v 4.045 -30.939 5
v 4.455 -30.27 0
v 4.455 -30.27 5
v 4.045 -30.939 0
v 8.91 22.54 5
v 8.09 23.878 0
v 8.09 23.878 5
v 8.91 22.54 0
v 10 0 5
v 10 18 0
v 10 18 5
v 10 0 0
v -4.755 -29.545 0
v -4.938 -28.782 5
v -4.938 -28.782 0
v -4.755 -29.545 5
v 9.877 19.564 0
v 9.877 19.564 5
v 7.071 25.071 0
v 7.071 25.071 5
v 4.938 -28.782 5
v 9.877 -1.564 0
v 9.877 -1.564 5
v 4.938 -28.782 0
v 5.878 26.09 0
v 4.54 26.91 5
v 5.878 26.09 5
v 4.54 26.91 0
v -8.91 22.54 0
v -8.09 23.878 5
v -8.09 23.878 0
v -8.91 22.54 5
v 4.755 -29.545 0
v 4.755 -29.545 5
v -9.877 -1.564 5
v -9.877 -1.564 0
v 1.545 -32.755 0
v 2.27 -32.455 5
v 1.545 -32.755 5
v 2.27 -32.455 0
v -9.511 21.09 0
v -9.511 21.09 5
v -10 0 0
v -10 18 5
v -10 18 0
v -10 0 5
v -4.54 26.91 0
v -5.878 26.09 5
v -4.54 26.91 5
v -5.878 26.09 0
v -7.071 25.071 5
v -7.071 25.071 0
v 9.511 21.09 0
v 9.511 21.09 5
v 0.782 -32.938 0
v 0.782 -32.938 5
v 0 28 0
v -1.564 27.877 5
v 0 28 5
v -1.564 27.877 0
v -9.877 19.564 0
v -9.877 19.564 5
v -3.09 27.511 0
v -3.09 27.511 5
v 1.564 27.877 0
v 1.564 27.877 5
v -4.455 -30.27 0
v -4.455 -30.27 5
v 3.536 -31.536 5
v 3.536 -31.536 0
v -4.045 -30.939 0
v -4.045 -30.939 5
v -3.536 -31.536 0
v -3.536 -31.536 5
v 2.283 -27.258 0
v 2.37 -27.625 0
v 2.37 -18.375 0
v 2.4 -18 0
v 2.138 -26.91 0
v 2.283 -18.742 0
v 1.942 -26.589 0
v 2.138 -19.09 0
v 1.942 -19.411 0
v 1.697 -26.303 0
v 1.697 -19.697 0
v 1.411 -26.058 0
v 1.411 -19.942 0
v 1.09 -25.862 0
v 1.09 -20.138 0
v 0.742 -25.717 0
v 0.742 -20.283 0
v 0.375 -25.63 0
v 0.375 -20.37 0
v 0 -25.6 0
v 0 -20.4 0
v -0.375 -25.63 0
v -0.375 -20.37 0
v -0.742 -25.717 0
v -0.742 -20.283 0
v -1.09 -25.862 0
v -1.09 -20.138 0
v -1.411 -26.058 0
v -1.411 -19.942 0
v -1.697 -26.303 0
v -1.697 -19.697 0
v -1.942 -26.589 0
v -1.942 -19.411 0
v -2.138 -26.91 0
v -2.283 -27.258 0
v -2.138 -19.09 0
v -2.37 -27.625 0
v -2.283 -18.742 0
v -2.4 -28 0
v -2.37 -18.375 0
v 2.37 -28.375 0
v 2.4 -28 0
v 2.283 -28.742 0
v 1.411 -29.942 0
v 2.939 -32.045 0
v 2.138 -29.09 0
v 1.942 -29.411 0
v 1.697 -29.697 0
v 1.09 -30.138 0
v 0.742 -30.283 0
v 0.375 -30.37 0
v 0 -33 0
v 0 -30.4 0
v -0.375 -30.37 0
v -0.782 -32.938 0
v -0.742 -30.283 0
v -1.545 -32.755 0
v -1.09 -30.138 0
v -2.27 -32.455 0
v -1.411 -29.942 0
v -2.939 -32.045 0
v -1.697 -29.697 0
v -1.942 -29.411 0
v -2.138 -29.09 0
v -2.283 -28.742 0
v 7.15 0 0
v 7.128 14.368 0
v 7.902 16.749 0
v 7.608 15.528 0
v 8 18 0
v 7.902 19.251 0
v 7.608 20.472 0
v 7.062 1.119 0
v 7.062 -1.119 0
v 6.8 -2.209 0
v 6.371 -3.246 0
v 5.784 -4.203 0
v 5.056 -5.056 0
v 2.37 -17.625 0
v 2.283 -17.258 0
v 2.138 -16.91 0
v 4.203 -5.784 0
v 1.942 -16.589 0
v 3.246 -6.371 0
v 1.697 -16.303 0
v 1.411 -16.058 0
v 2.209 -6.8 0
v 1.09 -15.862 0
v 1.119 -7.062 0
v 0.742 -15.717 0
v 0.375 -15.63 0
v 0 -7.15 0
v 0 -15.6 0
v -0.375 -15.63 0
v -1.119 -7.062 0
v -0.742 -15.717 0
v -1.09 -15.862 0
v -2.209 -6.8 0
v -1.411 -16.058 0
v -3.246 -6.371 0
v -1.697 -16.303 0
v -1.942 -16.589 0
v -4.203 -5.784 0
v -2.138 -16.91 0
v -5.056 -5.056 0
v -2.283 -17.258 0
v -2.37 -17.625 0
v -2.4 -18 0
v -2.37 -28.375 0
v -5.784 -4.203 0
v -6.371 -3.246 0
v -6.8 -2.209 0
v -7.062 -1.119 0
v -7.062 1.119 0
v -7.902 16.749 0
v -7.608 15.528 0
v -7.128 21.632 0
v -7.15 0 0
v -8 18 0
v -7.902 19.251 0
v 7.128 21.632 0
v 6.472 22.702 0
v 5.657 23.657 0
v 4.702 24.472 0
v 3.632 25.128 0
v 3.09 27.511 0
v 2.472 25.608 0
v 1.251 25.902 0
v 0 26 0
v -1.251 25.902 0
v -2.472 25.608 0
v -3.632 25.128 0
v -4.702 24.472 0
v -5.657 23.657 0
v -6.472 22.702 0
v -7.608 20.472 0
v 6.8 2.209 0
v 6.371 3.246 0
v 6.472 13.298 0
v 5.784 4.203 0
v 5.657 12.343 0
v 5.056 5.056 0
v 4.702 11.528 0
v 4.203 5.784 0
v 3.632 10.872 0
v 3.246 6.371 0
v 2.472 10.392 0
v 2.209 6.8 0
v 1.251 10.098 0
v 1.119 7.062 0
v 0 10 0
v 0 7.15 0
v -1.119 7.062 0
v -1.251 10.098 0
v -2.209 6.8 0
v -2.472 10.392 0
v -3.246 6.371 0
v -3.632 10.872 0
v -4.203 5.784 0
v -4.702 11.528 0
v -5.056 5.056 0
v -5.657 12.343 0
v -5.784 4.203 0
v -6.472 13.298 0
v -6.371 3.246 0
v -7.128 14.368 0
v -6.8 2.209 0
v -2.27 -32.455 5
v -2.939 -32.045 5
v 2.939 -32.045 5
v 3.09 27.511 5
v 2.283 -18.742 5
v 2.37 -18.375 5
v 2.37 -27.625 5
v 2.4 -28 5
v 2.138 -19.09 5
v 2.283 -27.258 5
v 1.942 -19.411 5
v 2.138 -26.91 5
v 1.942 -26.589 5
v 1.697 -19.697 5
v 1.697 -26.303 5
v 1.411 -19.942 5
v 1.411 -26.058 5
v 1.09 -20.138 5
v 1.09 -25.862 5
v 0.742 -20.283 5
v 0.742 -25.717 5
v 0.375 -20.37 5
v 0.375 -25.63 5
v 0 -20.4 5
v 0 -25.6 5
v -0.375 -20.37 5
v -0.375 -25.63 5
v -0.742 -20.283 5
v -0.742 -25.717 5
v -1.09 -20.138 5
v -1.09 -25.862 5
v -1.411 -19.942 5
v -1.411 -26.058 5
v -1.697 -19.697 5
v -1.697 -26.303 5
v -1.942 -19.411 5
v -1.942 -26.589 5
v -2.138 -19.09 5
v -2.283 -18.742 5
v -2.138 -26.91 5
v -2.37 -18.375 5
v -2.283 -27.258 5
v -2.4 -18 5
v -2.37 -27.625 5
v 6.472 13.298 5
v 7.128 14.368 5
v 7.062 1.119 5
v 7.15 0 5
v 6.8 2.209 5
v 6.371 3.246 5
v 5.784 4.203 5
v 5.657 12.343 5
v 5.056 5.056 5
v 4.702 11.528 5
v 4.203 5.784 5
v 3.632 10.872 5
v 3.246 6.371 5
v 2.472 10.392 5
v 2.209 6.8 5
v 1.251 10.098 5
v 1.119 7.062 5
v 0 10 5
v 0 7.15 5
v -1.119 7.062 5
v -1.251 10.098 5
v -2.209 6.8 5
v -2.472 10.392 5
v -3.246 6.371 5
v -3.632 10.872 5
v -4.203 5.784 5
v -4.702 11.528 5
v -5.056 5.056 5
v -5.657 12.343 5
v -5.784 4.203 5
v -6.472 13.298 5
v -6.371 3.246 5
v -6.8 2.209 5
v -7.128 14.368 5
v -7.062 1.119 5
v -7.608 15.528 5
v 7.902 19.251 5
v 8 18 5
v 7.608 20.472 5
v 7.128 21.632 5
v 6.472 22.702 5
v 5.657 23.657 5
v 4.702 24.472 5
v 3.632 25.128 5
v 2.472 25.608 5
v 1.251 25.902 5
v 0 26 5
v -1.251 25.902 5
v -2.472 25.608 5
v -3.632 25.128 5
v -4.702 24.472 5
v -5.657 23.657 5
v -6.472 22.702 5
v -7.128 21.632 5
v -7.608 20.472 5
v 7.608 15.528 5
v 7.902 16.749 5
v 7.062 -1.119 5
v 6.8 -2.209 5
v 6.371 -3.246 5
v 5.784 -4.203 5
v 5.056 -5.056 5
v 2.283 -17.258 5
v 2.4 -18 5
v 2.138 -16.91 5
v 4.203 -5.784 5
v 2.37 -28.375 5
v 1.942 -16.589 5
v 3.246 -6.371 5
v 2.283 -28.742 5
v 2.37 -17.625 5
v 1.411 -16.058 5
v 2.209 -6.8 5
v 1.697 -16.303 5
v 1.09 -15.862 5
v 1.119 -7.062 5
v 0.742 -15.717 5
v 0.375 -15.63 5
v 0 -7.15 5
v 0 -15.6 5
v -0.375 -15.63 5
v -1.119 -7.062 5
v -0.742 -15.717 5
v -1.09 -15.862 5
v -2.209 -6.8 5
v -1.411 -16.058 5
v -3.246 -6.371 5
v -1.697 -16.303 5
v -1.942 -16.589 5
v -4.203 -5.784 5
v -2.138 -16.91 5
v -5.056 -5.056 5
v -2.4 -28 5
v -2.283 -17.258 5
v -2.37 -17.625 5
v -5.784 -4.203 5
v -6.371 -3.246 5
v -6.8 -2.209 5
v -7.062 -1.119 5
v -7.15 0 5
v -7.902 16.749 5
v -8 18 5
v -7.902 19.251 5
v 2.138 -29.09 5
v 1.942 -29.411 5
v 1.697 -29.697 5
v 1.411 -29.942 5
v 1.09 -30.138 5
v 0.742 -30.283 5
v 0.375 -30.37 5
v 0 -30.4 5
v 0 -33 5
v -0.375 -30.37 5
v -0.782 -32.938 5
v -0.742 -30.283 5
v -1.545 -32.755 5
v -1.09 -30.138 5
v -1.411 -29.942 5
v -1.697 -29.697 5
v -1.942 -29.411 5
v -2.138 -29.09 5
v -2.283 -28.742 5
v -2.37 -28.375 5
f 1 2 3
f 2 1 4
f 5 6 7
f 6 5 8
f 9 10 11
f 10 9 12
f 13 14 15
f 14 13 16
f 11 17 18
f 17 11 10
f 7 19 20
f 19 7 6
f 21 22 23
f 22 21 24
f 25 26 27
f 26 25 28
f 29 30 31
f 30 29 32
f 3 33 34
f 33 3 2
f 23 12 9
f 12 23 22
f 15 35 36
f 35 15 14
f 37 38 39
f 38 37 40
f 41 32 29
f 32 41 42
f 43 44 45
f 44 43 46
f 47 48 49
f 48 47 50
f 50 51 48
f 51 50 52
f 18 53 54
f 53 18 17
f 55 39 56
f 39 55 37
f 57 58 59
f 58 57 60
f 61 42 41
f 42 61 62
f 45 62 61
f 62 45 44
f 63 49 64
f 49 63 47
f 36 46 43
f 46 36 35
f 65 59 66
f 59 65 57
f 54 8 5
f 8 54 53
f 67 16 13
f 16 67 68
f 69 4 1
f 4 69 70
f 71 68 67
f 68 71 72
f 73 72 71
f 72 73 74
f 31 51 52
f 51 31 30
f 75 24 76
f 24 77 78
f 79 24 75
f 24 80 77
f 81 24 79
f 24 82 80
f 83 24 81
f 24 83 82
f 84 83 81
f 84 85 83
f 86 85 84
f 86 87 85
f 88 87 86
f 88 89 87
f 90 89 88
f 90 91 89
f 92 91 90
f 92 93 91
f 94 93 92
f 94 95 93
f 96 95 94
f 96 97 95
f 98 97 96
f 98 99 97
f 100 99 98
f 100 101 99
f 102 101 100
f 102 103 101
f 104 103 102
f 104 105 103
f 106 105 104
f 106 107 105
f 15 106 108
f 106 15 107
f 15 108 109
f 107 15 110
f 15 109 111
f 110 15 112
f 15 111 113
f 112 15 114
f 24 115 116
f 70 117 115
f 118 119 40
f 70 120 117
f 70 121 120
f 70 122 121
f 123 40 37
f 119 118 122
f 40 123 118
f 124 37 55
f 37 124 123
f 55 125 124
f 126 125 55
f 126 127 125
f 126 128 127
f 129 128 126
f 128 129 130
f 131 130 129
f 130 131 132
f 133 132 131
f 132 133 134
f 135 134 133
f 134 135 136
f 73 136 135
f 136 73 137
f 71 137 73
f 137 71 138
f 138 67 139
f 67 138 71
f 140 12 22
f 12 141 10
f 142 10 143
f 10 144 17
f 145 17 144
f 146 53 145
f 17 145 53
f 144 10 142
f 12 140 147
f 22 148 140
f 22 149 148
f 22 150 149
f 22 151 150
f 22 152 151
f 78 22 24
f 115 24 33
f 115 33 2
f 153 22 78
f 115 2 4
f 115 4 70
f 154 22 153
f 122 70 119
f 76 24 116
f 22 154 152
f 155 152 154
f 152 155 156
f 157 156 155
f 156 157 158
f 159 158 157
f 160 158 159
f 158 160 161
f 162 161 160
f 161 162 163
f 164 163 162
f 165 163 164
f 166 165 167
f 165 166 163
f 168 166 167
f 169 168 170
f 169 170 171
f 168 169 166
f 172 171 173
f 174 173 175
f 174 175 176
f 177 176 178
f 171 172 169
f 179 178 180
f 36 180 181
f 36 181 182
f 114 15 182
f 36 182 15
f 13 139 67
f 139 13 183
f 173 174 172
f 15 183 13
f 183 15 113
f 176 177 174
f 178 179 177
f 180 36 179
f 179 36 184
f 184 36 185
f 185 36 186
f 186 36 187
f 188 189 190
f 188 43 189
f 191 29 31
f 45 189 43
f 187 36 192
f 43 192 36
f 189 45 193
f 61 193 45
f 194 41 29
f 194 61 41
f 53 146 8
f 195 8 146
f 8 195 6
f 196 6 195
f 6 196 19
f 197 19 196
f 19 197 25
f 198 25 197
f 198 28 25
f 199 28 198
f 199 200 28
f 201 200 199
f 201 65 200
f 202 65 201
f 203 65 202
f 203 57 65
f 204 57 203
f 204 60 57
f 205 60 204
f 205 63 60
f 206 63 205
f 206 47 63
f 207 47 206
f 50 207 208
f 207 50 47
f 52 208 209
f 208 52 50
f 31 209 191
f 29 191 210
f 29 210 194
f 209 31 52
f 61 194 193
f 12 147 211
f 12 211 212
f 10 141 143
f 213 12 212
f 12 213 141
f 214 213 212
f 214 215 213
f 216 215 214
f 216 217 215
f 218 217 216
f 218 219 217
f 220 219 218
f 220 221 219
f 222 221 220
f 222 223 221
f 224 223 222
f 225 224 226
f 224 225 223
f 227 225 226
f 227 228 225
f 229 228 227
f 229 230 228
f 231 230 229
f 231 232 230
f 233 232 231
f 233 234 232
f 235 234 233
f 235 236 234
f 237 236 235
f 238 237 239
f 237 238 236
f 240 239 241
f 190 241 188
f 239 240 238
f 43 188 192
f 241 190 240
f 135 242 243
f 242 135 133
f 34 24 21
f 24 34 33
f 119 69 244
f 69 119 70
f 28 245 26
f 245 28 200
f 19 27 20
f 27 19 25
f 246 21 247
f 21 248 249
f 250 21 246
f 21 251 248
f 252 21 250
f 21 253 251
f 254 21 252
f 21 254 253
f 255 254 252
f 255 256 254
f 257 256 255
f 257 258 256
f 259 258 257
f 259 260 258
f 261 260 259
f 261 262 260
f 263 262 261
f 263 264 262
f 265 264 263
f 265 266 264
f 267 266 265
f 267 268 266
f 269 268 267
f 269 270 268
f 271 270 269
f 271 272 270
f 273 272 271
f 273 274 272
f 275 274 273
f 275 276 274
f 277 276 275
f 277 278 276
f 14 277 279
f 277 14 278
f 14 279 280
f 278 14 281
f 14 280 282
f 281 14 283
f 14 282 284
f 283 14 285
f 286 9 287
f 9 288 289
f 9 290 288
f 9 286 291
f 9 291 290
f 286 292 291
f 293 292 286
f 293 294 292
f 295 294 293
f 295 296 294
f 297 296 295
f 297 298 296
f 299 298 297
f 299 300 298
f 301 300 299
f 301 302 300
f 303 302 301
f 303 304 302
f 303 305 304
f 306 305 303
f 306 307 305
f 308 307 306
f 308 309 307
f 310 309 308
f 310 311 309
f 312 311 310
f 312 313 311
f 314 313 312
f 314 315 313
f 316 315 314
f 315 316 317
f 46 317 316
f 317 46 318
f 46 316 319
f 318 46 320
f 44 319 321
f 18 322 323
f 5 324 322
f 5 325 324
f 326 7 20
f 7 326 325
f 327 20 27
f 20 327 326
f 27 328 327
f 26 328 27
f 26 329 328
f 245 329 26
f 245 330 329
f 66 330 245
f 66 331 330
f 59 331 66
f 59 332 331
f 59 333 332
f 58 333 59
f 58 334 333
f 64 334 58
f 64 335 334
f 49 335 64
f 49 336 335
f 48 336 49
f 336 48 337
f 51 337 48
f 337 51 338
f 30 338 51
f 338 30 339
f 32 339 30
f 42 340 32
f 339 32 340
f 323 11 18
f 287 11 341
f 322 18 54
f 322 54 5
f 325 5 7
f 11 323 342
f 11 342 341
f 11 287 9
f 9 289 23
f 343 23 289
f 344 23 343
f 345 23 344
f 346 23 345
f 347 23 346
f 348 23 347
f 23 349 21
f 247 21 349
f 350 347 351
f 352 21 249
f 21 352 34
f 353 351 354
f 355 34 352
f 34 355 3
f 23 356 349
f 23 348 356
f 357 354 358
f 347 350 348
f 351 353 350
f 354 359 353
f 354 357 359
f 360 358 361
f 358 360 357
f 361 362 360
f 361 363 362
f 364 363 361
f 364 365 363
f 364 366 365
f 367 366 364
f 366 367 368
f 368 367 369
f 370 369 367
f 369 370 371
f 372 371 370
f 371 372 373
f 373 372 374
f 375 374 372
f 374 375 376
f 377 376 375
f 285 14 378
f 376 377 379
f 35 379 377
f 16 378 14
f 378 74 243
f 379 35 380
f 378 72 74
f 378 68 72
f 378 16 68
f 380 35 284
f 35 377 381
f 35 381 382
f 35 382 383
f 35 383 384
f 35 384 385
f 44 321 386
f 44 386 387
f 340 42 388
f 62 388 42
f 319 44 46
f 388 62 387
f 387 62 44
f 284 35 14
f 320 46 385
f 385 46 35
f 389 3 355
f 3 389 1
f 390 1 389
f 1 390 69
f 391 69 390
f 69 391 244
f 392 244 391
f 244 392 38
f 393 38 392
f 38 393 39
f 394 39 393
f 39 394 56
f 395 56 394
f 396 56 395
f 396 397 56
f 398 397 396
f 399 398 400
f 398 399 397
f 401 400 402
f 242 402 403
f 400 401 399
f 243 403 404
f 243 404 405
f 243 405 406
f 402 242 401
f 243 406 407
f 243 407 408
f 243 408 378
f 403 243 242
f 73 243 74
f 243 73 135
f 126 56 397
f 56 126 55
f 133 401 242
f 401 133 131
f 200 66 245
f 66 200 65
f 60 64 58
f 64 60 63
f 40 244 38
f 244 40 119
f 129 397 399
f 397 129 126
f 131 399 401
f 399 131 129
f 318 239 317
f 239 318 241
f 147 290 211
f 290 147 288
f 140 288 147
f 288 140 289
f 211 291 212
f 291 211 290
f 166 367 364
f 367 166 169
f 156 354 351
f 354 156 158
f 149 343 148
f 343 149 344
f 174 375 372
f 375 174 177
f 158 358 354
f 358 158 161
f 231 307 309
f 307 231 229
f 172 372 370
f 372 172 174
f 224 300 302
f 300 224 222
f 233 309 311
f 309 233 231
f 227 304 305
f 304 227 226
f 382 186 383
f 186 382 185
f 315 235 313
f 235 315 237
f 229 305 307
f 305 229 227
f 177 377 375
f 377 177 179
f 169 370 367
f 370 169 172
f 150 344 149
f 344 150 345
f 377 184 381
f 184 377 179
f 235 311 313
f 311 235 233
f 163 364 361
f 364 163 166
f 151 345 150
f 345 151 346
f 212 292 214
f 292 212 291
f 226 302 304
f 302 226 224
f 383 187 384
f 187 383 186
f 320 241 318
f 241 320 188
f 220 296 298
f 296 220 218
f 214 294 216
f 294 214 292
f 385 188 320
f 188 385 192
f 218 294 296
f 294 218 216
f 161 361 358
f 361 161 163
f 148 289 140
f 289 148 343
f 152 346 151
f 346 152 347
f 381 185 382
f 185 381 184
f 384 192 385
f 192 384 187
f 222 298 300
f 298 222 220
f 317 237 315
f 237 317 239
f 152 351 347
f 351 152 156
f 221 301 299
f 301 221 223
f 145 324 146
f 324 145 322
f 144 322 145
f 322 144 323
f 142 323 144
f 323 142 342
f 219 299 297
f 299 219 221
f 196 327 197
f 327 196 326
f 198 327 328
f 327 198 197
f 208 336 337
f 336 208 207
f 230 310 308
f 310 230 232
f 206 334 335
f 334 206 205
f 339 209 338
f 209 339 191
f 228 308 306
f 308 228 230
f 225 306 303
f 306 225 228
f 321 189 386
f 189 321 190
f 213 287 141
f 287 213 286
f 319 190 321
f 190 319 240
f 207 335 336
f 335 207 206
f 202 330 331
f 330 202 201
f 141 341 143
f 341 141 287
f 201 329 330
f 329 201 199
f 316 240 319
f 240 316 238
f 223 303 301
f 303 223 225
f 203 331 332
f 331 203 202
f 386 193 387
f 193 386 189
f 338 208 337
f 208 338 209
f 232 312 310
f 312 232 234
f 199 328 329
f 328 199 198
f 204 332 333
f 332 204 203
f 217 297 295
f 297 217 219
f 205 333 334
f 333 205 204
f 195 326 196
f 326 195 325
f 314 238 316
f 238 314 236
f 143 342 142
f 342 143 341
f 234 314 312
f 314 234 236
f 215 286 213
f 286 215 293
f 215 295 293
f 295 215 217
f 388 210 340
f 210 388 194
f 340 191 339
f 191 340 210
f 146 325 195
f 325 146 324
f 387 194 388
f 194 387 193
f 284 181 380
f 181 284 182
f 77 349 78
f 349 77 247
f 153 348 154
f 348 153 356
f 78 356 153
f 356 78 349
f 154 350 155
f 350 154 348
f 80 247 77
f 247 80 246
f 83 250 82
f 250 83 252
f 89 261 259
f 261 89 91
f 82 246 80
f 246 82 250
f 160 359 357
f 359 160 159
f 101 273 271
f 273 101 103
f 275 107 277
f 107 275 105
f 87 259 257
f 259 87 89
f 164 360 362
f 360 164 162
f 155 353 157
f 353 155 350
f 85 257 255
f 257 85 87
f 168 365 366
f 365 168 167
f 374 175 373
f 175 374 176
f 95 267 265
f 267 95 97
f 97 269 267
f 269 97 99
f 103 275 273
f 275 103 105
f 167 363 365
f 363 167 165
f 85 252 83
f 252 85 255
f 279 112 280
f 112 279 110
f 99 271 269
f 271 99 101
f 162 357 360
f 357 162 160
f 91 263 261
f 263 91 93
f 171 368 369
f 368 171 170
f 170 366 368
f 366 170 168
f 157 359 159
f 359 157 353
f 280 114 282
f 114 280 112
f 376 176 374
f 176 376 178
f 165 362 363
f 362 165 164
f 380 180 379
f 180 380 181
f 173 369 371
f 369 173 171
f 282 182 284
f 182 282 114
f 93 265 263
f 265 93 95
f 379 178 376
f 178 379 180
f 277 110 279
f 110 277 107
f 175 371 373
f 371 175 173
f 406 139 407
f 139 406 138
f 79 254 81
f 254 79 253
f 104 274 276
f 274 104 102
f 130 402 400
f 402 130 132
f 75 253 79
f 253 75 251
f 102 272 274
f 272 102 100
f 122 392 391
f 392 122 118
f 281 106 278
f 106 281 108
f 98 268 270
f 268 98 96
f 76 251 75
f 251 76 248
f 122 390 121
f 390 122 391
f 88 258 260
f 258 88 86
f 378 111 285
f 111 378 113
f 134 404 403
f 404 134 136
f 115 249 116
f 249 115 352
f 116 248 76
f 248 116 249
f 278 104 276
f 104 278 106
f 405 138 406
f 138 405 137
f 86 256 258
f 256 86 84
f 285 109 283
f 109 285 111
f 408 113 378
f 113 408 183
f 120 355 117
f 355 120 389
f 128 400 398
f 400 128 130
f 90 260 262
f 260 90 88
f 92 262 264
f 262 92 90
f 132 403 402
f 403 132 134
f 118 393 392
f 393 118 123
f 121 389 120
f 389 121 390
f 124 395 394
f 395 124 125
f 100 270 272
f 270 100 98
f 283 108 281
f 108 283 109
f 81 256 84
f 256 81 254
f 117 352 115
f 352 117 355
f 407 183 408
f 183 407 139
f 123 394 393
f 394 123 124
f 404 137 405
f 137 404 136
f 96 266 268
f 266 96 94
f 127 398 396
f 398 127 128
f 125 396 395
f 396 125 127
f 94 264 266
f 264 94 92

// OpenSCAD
$fn=40;


difference(){
    hull(){
        cylinder(d=20,h=5);
        translate([0,18,0])cylinder(d=20,h=5);
        translate([0,-18,0])cylinder(d=10,h=5);
        translate([0,-28,0])cylinder(d=10,h=5);
    }
    cylinder(d=14.3,h=6);
    translate([0,18,0])cylinder(d=16,h=6);
            translate([0,-18,0])cylinder(d=4.8,h=6);
        translate([0,-28,0])cylinder(d=4.8,h=6);
}
